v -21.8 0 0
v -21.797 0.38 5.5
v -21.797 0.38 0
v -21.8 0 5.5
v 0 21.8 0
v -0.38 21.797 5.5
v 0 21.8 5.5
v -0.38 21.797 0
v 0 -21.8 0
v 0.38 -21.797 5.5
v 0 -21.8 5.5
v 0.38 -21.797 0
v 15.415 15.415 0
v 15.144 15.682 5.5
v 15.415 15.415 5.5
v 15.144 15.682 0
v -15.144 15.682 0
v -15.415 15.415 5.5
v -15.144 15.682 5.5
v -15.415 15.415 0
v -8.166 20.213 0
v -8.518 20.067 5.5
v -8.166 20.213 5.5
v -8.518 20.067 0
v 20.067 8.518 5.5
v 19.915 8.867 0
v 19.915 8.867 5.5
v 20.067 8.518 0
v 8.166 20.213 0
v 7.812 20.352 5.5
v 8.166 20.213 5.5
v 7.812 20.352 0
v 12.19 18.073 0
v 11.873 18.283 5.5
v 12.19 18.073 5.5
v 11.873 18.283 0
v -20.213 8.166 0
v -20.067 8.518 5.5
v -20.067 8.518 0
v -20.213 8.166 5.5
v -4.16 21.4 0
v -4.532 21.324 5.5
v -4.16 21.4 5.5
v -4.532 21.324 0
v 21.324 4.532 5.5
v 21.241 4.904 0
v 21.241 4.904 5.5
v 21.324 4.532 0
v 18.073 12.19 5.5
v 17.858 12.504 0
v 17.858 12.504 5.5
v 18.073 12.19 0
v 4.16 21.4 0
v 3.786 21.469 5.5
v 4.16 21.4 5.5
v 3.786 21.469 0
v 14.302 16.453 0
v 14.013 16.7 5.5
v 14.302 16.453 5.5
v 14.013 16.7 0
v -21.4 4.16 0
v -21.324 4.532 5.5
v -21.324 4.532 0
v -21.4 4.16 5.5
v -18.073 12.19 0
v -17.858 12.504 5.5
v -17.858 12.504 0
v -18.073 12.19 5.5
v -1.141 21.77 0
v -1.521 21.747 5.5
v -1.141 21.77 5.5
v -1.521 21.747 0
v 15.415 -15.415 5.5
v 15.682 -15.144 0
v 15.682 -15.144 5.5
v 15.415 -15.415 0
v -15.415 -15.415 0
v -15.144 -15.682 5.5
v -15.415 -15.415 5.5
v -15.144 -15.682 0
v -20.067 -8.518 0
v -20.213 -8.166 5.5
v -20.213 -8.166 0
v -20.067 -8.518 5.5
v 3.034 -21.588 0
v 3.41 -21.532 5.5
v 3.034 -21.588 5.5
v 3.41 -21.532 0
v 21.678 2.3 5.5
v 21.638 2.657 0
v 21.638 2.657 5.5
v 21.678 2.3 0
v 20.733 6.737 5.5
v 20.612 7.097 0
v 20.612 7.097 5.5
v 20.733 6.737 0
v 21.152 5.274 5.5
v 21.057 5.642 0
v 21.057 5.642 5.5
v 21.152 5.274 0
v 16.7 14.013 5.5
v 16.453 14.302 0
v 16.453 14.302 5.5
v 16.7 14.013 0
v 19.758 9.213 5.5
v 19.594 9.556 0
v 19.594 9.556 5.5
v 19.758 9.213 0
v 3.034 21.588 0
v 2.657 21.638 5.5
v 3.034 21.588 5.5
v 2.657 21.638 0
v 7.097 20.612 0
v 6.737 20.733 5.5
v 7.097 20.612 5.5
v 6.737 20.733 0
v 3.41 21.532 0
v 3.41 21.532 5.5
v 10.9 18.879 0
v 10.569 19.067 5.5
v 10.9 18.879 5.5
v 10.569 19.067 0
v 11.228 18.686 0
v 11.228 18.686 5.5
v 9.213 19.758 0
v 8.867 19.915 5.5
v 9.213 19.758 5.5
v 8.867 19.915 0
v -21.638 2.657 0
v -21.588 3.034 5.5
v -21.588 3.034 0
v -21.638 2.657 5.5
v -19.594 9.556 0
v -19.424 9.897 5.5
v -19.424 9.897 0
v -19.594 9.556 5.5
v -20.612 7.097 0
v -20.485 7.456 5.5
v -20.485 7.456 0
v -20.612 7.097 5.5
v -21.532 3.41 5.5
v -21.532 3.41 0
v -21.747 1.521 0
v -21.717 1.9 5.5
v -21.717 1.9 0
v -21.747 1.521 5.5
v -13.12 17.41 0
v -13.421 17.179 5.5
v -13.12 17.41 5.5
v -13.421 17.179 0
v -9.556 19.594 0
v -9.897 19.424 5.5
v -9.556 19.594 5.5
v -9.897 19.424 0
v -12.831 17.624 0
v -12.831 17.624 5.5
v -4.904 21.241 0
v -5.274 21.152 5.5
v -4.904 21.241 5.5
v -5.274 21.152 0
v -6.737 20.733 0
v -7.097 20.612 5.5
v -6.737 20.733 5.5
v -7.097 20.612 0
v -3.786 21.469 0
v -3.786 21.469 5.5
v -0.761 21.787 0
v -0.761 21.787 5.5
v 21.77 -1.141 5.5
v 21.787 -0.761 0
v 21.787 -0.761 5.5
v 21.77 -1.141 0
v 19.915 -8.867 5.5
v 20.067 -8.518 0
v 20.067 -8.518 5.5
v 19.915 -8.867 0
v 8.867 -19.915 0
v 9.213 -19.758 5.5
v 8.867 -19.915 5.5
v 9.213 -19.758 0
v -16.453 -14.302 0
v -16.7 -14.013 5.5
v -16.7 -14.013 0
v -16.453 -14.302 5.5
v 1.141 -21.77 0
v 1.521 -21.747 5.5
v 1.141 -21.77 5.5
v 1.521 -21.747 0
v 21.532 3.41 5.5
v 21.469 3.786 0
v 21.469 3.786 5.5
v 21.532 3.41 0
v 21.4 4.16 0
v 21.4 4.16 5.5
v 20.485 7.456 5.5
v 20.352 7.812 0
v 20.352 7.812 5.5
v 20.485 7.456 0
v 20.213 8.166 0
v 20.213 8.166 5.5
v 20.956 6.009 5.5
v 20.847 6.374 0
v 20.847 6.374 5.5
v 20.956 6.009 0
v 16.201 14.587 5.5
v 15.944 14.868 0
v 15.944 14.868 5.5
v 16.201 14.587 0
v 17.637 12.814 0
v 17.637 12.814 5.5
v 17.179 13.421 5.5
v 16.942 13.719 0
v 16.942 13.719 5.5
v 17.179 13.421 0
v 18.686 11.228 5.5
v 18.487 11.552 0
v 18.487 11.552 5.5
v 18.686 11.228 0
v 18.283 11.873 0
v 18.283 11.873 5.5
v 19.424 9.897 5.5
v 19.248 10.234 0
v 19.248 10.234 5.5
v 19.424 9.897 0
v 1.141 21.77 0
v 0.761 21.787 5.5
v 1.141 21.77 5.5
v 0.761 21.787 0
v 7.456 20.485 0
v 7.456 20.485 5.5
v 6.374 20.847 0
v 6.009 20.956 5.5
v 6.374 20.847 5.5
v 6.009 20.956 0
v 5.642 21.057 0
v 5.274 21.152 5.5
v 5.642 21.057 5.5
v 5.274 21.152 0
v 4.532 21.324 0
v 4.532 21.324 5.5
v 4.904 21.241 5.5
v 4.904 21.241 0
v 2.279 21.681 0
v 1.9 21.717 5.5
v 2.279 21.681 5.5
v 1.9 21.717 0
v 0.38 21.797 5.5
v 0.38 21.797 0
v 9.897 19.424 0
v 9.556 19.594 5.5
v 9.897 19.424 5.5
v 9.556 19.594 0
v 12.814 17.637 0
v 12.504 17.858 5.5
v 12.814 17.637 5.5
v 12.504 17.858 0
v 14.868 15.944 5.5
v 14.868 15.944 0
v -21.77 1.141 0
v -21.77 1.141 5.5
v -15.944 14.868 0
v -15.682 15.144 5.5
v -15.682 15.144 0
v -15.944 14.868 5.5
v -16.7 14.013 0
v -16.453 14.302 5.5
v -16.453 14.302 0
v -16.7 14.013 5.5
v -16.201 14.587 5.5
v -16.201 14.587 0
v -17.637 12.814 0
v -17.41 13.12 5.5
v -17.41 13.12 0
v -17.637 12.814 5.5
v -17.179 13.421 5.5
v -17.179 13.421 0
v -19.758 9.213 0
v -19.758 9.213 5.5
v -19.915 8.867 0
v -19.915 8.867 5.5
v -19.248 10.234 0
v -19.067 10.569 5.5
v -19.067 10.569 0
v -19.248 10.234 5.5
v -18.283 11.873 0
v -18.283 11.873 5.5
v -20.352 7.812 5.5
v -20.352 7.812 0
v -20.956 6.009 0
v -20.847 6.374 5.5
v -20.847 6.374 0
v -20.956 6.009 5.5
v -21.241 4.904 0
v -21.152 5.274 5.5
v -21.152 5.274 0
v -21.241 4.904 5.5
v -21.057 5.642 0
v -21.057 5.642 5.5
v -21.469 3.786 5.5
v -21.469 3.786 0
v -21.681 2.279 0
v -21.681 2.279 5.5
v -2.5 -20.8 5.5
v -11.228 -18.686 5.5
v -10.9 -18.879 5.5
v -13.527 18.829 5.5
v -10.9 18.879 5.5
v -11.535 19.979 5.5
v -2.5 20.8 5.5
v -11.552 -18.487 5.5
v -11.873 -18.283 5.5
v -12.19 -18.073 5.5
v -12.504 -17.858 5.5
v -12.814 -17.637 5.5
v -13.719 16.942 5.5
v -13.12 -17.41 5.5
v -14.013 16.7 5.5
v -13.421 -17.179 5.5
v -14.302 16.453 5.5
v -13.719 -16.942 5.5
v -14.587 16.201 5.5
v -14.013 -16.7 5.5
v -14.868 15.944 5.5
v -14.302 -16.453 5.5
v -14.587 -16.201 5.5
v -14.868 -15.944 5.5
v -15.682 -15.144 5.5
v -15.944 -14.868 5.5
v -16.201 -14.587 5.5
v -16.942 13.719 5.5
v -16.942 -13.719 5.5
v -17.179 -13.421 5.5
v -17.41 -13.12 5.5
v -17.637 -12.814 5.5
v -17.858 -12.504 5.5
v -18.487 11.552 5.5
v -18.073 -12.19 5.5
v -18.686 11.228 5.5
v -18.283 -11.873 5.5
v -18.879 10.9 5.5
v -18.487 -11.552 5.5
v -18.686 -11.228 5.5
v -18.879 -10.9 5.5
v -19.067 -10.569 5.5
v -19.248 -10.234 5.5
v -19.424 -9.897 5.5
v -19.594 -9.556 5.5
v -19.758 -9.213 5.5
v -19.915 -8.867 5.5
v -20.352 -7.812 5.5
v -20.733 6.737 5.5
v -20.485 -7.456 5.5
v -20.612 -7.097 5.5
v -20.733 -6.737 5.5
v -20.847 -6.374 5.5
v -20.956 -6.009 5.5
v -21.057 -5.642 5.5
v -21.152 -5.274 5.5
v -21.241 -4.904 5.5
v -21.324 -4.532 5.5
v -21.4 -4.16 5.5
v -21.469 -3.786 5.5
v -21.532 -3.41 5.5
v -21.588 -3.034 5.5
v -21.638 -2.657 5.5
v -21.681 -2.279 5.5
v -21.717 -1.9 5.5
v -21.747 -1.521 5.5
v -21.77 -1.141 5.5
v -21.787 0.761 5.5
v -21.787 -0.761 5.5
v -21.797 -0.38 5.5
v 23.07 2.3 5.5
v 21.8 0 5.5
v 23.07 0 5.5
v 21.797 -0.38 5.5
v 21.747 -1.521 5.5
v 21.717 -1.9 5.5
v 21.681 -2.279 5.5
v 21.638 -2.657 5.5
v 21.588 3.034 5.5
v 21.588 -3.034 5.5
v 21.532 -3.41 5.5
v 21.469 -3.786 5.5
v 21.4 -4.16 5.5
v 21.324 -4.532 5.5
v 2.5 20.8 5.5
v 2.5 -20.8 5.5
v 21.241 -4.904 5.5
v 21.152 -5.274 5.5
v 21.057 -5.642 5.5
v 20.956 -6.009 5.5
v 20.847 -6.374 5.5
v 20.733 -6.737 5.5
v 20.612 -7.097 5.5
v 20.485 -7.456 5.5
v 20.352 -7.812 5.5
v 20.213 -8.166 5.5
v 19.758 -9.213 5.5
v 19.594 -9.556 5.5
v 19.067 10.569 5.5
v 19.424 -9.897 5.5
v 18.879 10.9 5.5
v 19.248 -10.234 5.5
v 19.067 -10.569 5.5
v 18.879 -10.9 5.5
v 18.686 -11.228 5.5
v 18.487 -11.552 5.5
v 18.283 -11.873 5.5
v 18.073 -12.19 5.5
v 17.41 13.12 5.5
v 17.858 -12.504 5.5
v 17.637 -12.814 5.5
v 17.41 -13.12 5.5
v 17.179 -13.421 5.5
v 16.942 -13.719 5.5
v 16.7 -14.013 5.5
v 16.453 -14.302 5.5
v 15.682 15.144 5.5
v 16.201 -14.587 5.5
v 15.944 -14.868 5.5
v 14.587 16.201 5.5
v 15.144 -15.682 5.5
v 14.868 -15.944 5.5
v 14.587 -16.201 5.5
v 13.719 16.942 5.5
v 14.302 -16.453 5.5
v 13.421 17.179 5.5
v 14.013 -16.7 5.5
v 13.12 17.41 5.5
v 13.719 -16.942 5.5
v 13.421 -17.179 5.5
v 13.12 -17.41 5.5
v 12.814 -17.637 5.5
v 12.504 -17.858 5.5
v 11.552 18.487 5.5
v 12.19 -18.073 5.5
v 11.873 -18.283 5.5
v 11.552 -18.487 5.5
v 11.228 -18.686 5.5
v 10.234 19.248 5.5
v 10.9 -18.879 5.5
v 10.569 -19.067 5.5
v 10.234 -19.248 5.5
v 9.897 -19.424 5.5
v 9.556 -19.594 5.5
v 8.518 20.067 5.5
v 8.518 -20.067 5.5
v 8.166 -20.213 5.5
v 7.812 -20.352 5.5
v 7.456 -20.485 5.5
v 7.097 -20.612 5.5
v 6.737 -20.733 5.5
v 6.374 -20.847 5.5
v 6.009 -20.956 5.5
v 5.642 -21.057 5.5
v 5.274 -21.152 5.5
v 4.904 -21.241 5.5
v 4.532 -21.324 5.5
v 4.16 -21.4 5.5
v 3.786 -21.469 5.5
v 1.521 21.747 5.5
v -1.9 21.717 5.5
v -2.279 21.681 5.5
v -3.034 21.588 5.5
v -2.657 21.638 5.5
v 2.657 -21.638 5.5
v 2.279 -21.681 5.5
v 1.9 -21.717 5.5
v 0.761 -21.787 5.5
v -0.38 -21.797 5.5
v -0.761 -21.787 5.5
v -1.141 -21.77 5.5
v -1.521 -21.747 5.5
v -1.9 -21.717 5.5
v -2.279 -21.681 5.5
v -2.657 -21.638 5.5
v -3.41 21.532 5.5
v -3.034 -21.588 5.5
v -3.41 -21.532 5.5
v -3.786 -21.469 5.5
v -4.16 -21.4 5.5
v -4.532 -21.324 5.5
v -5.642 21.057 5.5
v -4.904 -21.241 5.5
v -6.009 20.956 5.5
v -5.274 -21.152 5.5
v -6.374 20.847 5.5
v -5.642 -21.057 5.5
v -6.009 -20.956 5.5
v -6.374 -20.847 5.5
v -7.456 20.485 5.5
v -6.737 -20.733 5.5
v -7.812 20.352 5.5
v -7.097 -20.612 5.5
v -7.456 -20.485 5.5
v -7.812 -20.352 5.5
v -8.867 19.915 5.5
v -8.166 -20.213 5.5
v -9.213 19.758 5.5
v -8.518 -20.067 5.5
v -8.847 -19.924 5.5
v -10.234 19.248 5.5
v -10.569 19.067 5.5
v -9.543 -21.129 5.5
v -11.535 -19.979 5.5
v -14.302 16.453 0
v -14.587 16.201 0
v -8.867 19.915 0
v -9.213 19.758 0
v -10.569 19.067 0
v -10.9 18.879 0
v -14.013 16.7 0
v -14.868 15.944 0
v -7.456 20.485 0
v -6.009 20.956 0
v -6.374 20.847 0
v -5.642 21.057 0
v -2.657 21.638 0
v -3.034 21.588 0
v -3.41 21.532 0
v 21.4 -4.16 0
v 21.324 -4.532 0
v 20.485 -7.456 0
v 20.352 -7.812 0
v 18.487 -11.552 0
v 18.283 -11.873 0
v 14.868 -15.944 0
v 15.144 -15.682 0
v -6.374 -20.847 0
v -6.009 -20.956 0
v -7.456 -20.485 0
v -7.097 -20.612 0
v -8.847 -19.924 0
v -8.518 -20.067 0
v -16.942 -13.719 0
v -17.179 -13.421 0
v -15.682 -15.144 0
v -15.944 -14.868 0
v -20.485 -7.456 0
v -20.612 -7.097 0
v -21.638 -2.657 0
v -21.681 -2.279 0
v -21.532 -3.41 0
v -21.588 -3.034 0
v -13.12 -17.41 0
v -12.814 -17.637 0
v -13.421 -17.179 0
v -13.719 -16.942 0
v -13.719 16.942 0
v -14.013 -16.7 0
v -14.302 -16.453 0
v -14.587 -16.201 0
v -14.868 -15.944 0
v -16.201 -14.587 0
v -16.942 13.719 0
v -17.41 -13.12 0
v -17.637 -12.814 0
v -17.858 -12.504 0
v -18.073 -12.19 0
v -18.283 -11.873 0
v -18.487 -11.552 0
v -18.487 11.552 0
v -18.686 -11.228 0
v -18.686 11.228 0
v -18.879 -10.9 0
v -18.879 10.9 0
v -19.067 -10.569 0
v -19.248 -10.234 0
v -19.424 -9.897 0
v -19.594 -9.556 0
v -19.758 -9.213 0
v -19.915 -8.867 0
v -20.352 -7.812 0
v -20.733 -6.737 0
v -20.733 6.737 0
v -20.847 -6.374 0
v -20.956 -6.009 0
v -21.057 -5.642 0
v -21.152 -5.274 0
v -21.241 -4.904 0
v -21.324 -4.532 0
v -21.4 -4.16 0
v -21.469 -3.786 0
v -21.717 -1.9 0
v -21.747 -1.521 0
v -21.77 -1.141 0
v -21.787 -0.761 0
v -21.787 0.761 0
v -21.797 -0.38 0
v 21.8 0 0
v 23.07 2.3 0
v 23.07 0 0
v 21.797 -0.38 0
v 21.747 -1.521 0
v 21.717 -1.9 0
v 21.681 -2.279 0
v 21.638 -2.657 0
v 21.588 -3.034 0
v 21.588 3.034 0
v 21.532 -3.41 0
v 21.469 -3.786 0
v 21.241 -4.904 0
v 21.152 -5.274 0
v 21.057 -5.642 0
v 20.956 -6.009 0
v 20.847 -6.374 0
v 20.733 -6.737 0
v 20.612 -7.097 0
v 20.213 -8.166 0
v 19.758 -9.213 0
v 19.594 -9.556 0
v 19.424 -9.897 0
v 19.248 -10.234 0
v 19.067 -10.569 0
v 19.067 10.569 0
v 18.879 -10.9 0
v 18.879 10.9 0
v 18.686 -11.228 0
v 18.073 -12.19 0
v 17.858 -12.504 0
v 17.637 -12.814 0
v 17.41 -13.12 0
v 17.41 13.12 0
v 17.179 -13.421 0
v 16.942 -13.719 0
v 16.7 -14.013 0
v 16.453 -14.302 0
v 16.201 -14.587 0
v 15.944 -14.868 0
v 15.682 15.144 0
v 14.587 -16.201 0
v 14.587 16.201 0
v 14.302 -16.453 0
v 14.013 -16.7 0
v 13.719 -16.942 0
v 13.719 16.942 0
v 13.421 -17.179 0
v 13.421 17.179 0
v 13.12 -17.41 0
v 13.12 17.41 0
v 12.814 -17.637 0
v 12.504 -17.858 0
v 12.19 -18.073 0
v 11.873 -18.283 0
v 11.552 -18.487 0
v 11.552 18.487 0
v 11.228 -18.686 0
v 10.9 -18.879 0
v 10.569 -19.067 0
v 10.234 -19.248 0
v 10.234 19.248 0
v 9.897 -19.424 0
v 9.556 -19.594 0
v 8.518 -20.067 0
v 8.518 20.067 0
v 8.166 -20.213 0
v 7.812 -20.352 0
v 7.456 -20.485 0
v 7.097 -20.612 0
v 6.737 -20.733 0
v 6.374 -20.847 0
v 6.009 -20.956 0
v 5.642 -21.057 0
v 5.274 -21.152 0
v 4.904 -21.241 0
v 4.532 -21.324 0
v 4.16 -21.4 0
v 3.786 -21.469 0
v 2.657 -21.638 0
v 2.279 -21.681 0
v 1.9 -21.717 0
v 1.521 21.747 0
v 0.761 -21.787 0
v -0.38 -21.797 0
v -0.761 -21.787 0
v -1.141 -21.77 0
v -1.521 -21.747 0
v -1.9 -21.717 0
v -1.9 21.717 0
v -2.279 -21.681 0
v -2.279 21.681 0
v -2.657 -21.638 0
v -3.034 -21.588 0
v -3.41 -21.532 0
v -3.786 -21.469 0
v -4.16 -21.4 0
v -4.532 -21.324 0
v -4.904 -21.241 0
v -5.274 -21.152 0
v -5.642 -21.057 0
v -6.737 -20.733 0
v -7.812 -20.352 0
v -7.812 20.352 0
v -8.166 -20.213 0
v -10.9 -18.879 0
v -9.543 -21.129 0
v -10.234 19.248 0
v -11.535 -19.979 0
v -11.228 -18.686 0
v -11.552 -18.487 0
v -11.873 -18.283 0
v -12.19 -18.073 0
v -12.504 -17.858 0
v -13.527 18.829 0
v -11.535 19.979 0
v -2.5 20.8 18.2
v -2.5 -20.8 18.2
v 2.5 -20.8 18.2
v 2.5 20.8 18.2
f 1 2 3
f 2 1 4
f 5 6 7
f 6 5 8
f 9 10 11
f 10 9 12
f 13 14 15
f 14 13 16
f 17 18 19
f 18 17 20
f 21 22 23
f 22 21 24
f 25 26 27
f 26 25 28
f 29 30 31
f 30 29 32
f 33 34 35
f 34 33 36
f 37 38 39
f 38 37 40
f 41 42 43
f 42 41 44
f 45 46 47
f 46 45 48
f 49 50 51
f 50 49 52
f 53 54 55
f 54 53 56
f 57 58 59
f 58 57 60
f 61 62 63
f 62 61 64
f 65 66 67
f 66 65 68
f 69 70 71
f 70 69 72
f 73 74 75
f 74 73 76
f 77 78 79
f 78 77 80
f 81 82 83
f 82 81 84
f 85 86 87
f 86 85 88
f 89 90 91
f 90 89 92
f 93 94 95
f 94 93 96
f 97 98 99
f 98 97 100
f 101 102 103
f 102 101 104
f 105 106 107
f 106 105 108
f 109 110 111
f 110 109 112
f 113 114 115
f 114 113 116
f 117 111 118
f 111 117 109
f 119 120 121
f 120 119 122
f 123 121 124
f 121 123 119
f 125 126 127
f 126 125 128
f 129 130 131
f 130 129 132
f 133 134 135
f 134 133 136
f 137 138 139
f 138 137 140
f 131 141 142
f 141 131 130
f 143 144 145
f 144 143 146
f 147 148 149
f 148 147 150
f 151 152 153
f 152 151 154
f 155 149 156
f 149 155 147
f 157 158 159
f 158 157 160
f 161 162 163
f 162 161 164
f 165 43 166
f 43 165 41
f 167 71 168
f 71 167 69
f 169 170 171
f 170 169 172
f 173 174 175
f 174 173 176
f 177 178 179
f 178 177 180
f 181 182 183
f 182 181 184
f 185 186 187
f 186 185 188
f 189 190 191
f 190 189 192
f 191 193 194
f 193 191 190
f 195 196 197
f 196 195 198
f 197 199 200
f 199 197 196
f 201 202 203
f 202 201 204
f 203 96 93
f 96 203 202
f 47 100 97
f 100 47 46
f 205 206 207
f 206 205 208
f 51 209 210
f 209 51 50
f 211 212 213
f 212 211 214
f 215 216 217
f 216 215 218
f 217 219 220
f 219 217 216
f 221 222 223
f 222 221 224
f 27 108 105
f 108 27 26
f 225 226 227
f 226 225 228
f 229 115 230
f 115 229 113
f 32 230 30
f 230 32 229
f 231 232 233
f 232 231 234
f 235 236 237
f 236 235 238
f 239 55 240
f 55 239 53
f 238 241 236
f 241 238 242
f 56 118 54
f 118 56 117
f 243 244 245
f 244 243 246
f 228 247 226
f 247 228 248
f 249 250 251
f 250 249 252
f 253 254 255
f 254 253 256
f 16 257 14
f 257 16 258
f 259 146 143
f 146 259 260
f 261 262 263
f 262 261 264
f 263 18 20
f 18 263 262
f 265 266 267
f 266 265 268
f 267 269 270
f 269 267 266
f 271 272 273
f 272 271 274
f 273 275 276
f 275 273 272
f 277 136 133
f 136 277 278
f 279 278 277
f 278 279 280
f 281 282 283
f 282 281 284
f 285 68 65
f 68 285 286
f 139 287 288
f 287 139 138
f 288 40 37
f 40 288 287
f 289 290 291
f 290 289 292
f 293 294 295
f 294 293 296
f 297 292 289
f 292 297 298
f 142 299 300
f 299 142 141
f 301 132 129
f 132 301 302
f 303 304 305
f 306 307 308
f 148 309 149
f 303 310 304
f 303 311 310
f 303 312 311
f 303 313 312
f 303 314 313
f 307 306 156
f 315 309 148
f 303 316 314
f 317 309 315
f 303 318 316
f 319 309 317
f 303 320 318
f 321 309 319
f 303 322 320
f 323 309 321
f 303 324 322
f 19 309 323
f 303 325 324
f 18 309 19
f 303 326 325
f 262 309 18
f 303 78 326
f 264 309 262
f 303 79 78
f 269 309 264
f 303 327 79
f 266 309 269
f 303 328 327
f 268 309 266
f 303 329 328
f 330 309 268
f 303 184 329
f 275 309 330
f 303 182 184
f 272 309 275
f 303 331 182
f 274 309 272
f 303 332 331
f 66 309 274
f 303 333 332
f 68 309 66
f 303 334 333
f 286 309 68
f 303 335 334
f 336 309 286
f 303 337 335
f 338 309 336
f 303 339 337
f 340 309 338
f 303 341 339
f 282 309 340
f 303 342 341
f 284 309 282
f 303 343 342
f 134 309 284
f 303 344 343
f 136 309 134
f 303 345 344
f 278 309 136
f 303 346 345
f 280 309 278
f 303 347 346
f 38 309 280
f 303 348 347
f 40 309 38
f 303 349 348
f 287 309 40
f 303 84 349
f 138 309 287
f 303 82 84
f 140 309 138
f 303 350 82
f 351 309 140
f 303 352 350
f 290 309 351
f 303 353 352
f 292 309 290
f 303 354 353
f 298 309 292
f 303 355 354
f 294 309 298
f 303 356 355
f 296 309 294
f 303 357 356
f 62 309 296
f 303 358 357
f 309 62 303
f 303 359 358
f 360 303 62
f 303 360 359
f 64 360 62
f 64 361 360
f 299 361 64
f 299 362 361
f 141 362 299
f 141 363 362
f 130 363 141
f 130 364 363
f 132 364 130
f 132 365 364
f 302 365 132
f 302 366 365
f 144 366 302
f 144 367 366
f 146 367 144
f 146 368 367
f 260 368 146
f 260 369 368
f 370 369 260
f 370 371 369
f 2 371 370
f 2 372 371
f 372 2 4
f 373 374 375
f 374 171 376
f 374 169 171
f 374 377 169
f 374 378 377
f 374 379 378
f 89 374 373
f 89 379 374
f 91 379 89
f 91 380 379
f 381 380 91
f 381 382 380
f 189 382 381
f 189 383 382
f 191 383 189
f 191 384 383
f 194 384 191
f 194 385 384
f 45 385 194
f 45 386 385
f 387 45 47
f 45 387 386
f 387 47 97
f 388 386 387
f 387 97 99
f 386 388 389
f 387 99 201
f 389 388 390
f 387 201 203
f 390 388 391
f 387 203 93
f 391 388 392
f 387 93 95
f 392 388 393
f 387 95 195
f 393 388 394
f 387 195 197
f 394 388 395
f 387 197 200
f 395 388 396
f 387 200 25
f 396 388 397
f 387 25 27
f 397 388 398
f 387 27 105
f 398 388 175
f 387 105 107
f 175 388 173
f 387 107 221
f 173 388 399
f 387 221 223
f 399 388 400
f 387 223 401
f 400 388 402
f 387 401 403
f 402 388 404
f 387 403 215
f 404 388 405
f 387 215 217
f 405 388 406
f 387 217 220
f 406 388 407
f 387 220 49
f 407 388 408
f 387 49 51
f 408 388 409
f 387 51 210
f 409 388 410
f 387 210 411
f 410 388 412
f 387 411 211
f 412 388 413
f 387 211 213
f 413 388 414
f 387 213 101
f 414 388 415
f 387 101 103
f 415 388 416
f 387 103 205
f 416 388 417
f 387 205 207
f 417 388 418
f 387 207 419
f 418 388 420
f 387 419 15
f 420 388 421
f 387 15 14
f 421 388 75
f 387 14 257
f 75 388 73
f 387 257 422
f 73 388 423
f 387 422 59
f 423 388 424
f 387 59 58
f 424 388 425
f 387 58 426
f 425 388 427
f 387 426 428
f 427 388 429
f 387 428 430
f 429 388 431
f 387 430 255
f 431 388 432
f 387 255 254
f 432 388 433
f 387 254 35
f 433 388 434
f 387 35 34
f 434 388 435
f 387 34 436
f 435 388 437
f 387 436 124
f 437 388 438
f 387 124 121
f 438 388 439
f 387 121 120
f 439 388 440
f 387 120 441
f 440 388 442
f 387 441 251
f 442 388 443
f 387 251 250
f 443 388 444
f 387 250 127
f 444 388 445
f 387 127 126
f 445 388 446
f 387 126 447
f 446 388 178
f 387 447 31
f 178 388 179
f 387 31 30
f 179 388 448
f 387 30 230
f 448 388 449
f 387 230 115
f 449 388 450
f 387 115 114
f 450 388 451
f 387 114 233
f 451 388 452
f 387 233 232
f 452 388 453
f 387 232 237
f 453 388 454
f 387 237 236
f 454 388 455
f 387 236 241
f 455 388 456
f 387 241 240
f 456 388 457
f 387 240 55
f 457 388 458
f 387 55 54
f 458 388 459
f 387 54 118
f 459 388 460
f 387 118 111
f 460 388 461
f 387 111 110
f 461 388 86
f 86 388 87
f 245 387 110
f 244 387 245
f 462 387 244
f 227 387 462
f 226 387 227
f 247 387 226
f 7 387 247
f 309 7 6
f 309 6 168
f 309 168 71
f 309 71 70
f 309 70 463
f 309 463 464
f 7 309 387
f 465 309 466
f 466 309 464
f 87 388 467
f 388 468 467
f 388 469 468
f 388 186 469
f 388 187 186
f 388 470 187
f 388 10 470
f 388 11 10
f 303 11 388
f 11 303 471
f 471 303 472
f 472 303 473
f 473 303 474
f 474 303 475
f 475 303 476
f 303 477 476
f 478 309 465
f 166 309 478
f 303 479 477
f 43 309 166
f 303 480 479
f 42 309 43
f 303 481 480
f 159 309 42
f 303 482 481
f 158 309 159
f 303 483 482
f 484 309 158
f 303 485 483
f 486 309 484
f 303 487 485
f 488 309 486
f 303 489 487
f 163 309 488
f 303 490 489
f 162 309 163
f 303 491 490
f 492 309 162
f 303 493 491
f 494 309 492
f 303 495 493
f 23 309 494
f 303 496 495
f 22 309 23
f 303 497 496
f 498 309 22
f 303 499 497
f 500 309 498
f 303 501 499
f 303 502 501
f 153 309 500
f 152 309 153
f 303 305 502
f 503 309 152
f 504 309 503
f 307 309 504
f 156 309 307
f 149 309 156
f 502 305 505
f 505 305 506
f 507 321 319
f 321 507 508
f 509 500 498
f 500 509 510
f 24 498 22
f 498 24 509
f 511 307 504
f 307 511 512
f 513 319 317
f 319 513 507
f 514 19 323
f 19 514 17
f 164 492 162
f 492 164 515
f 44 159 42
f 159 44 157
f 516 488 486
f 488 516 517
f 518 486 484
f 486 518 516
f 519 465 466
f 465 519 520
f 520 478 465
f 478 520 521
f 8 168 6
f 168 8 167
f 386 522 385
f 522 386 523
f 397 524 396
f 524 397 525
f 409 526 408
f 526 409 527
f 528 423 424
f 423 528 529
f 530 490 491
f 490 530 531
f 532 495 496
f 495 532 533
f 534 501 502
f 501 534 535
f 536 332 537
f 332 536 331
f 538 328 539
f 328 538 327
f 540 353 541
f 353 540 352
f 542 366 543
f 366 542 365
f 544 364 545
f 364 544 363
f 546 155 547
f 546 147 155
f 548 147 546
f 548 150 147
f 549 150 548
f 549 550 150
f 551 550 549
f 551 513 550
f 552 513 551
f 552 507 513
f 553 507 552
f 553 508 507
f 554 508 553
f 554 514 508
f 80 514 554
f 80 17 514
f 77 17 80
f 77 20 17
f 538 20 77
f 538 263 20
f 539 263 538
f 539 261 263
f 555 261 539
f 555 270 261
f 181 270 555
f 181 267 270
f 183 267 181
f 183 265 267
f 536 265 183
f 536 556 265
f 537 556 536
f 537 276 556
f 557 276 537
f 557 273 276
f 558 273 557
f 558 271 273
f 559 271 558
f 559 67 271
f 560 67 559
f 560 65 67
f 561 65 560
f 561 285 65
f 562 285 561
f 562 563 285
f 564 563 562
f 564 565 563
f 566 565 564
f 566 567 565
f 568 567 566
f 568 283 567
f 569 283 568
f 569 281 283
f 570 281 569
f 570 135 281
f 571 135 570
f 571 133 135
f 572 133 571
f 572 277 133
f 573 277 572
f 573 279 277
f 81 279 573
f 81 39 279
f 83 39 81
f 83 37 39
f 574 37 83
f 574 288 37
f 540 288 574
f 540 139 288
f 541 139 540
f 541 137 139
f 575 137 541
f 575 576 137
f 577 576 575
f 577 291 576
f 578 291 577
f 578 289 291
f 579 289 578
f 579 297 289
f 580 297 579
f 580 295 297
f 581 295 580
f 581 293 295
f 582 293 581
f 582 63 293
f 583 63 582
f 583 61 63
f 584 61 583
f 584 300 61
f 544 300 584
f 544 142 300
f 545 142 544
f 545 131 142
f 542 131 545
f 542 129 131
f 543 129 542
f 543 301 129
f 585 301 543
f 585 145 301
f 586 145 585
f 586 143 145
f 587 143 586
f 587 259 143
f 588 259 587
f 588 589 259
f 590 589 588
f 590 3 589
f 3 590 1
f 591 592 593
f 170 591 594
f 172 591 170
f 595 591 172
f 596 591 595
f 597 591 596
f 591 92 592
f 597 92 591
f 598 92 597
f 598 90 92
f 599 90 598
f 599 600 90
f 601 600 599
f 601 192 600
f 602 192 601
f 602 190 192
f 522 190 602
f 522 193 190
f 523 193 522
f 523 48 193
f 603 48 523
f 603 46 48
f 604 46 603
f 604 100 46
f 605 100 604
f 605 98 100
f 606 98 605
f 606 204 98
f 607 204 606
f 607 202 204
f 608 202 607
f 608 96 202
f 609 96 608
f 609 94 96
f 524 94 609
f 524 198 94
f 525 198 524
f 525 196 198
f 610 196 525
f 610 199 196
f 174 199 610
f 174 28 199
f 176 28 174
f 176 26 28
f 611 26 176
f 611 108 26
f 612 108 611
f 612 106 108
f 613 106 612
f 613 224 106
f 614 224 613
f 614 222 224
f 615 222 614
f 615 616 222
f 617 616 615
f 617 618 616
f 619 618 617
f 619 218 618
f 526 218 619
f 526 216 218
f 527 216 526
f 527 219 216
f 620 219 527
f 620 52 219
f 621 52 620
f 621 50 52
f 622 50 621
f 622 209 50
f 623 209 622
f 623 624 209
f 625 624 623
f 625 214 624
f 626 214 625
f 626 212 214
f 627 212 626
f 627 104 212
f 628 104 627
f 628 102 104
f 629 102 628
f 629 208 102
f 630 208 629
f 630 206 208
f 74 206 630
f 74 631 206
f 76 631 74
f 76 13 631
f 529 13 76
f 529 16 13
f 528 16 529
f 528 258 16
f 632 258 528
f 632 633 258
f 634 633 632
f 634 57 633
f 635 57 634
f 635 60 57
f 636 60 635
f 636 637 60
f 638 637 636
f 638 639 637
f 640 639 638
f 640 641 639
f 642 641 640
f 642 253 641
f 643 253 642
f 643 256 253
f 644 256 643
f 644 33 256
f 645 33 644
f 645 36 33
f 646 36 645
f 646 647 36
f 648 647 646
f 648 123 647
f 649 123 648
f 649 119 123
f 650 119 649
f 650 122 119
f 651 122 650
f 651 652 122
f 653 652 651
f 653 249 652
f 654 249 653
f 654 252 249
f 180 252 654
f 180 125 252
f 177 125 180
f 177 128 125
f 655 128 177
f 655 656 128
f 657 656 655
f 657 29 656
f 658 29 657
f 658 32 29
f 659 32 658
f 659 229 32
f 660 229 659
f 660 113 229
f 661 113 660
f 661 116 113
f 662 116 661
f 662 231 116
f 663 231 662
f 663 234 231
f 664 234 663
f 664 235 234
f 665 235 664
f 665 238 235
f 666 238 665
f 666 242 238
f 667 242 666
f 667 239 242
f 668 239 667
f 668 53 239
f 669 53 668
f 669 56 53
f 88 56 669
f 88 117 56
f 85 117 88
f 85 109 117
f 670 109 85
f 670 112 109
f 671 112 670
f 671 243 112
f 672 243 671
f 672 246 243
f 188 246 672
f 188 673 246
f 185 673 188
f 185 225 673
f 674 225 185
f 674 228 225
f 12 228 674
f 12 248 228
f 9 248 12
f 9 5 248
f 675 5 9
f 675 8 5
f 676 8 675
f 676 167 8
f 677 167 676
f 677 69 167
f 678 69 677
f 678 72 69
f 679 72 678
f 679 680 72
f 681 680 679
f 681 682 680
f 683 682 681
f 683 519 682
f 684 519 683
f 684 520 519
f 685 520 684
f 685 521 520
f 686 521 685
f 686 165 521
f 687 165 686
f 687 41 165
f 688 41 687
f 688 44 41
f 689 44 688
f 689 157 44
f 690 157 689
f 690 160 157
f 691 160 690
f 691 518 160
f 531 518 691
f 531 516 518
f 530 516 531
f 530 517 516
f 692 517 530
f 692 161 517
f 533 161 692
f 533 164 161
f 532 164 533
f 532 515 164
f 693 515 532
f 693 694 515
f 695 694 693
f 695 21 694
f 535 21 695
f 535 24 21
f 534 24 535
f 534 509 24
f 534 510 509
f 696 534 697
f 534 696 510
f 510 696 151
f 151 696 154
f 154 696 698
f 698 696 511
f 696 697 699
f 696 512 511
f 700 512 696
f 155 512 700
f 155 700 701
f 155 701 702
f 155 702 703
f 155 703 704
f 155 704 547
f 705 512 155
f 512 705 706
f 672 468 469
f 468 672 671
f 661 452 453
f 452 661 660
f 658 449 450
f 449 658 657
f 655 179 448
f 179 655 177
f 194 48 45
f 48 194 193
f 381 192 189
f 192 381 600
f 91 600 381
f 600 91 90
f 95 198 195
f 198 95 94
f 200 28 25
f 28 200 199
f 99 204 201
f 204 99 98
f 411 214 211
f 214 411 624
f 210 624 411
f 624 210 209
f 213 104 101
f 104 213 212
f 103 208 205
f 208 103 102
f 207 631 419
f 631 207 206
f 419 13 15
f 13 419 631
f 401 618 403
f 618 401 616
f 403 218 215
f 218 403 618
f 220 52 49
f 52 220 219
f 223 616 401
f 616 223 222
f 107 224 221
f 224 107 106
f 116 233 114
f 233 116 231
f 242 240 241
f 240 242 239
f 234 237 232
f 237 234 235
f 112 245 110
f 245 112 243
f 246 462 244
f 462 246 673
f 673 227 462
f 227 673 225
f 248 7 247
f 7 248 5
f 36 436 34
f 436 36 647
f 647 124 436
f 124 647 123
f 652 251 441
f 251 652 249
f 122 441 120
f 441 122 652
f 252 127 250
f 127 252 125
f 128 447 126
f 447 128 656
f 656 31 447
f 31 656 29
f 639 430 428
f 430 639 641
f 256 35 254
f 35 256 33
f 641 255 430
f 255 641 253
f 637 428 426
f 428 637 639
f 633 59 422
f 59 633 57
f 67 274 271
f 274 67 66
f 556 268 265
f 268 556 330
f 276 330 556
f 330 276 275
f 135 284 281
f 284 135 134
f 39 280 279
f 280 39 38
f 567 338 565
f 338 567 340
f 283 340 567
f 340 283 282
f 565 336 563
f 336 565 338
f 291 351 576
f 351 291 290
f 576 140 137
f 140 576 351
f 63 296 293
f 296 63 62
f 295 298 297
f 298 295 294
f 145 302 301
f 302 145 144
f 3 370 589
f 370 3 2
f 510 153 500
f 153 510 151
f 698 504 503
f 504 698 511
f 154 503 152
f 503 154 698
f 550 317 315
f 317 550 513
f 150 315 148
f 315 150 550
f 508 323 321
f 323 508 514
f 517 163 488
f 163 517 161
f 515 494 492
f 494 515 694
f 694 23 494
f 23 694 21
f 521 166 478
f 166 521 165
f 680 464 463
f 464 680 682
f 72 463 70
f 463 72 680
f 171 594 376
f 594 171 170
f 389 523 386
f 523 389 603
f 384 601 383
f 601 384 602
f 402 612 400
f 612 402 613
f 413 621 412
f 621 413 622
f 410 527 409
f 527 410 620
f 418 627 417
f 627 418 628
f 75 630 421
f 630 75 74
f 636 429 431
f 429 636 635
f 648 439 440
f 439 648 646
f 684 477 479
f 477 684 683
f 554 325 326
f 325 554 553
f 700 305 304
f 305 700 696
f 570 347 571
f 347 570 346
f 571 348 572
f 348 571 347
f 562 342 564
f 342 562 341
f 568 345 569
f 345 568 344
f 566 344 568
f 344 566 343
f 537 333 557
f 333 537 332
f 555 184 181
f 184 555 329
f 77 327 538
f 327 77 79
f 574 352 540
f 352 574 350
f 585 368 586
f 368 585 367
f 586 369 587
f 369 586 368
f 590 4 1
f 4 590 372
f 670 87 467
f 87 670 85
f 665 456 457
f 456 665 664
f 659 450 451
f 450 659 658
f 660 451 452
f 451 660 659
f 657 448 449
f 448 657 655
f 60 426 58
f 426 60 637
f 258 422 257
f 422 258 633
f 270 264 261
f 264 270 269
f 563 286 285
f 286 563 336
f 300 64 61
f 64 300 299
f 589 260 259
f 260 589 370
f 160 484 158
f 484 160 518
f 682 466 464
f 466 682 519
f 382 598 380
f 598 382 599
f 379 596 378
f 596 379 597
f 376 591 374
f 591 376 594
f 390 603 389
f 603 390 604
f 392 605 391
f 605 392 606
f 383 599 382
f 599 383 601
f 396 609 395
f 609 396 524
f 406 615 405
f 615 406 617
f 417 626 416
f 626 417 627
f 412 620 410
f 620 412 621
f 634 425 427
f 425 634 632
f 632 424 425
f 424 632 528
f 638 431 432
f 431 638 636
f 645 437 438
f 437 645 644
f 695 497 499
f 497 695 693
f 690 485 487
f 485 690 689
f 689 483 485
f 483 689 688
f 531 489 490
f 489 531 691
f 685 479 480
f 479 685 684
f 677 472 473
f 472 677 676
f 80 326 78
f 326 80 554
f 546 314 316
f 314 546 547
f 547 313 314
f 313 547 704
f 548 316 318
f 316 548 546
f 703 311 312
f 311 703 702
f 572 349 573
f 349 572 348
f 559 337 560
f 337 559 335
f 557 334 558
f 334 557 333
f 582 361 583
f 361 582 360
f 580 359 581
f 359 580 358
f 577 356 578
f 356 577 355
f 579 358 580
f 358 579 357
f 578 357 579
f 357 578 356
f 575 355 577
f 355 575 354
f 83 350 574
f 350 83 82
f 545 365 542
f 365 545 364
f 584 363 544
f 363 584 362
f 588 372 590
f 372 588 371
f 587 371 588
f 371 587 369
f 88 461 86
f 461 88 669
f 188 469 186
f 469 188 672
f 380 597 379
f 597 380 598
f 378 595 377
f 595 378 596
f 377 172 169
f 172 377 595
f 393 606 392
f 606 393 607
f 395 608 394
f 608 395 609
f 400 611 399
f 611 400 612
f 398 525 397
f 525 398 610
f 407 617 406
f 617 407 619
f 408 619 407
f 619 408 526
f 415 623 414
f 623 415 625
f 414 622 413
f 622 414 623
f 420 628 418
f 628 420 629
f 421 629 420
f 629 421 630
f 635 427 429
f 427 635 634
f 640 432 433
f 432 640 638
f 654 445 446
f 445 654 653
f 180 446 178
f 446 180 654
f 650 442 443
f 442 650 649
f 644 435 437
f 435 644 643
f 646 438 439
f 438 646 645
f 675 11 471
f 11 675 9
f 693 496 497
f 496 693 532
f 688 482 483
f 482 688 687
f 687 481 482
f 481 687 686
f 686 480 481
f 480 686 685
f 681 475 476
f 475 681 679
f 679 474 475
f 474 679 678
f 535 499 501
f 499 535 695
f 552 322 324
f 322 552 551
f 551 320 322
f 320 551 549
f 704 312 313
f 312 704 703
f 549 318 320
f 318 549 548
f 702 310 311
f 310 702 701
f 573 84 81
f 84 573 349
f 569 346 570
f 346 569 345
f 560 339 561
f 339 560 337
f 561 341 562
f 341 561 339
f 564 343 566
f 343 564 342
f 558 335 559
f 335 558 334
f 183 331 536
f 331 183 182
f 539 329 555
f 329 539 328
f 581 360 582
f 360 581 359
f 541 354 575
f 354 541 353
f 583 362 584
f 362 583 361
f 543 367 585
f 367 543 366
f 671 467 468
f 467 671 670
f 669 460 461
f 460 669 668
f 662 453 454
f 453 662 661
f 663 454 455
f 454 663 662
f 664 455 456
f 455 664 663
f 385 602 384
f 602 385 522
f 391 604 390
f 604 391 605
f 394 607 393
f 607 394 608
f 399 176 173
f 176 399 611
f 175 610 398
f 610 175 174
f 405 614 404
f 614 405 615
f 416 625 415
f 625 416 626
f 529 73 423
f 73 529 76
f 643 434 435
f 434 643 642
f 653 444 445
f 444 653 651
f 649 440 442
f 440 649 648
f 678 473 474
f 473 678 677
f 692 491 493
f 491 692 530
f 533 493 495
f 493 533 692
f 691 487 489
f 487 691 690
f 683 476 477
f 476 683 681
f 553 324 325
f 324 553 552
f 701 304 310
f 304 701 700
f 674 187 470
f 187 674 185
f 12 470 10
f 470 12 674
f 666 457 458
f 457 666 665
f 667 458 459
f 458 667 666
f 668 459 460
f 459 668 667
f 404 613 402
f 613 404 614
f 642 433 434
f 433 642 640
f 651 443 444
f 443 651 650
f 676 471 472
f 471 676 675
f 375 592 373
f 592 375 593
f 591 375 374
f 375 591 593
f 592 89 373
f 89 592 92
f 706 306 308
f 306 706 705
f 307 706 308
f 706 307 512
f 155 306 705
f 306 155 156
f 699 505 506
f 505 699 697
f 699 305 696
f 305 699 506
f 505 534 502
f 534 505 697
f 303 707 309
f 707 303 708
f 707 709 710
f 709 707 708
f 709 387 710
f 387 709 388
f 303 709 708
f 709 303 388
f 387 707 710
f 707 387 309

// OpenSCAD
sides=360;

plug_dia      = 43.60;
plug_height   = 5.50;
ear_length    = 1.27;
ear_width     = 2.30;
handle_height = 25.40 / 2;
handle_width  = 5.00;

module plug () {
  translate ([0, 0, 0]) {
    cylinder (d=plug_dia, h=plug_height, $fn=sides);

    rotate ([0, 0, 0])
      cube ([(plug_dia / 2) + ear_length, ear_width, plug_height]);
    rotate ([0, 0, 120])
      cube ([(plug_dia / 2) + ear_length, ear_width, plug_height]);
    rotate ([0, 0, 240])
      cube ([(plug_dia / 2) + ear_length, ear_width, plug_height]);
  }
}

module handle () {
  translate ([-(handle_width / 2), -((plug_dia - 2) / 2), plug_height])
    cube ([handle_width, (plug_dia - 2), handle_height], center=false);
}

plug ();
handle ();
